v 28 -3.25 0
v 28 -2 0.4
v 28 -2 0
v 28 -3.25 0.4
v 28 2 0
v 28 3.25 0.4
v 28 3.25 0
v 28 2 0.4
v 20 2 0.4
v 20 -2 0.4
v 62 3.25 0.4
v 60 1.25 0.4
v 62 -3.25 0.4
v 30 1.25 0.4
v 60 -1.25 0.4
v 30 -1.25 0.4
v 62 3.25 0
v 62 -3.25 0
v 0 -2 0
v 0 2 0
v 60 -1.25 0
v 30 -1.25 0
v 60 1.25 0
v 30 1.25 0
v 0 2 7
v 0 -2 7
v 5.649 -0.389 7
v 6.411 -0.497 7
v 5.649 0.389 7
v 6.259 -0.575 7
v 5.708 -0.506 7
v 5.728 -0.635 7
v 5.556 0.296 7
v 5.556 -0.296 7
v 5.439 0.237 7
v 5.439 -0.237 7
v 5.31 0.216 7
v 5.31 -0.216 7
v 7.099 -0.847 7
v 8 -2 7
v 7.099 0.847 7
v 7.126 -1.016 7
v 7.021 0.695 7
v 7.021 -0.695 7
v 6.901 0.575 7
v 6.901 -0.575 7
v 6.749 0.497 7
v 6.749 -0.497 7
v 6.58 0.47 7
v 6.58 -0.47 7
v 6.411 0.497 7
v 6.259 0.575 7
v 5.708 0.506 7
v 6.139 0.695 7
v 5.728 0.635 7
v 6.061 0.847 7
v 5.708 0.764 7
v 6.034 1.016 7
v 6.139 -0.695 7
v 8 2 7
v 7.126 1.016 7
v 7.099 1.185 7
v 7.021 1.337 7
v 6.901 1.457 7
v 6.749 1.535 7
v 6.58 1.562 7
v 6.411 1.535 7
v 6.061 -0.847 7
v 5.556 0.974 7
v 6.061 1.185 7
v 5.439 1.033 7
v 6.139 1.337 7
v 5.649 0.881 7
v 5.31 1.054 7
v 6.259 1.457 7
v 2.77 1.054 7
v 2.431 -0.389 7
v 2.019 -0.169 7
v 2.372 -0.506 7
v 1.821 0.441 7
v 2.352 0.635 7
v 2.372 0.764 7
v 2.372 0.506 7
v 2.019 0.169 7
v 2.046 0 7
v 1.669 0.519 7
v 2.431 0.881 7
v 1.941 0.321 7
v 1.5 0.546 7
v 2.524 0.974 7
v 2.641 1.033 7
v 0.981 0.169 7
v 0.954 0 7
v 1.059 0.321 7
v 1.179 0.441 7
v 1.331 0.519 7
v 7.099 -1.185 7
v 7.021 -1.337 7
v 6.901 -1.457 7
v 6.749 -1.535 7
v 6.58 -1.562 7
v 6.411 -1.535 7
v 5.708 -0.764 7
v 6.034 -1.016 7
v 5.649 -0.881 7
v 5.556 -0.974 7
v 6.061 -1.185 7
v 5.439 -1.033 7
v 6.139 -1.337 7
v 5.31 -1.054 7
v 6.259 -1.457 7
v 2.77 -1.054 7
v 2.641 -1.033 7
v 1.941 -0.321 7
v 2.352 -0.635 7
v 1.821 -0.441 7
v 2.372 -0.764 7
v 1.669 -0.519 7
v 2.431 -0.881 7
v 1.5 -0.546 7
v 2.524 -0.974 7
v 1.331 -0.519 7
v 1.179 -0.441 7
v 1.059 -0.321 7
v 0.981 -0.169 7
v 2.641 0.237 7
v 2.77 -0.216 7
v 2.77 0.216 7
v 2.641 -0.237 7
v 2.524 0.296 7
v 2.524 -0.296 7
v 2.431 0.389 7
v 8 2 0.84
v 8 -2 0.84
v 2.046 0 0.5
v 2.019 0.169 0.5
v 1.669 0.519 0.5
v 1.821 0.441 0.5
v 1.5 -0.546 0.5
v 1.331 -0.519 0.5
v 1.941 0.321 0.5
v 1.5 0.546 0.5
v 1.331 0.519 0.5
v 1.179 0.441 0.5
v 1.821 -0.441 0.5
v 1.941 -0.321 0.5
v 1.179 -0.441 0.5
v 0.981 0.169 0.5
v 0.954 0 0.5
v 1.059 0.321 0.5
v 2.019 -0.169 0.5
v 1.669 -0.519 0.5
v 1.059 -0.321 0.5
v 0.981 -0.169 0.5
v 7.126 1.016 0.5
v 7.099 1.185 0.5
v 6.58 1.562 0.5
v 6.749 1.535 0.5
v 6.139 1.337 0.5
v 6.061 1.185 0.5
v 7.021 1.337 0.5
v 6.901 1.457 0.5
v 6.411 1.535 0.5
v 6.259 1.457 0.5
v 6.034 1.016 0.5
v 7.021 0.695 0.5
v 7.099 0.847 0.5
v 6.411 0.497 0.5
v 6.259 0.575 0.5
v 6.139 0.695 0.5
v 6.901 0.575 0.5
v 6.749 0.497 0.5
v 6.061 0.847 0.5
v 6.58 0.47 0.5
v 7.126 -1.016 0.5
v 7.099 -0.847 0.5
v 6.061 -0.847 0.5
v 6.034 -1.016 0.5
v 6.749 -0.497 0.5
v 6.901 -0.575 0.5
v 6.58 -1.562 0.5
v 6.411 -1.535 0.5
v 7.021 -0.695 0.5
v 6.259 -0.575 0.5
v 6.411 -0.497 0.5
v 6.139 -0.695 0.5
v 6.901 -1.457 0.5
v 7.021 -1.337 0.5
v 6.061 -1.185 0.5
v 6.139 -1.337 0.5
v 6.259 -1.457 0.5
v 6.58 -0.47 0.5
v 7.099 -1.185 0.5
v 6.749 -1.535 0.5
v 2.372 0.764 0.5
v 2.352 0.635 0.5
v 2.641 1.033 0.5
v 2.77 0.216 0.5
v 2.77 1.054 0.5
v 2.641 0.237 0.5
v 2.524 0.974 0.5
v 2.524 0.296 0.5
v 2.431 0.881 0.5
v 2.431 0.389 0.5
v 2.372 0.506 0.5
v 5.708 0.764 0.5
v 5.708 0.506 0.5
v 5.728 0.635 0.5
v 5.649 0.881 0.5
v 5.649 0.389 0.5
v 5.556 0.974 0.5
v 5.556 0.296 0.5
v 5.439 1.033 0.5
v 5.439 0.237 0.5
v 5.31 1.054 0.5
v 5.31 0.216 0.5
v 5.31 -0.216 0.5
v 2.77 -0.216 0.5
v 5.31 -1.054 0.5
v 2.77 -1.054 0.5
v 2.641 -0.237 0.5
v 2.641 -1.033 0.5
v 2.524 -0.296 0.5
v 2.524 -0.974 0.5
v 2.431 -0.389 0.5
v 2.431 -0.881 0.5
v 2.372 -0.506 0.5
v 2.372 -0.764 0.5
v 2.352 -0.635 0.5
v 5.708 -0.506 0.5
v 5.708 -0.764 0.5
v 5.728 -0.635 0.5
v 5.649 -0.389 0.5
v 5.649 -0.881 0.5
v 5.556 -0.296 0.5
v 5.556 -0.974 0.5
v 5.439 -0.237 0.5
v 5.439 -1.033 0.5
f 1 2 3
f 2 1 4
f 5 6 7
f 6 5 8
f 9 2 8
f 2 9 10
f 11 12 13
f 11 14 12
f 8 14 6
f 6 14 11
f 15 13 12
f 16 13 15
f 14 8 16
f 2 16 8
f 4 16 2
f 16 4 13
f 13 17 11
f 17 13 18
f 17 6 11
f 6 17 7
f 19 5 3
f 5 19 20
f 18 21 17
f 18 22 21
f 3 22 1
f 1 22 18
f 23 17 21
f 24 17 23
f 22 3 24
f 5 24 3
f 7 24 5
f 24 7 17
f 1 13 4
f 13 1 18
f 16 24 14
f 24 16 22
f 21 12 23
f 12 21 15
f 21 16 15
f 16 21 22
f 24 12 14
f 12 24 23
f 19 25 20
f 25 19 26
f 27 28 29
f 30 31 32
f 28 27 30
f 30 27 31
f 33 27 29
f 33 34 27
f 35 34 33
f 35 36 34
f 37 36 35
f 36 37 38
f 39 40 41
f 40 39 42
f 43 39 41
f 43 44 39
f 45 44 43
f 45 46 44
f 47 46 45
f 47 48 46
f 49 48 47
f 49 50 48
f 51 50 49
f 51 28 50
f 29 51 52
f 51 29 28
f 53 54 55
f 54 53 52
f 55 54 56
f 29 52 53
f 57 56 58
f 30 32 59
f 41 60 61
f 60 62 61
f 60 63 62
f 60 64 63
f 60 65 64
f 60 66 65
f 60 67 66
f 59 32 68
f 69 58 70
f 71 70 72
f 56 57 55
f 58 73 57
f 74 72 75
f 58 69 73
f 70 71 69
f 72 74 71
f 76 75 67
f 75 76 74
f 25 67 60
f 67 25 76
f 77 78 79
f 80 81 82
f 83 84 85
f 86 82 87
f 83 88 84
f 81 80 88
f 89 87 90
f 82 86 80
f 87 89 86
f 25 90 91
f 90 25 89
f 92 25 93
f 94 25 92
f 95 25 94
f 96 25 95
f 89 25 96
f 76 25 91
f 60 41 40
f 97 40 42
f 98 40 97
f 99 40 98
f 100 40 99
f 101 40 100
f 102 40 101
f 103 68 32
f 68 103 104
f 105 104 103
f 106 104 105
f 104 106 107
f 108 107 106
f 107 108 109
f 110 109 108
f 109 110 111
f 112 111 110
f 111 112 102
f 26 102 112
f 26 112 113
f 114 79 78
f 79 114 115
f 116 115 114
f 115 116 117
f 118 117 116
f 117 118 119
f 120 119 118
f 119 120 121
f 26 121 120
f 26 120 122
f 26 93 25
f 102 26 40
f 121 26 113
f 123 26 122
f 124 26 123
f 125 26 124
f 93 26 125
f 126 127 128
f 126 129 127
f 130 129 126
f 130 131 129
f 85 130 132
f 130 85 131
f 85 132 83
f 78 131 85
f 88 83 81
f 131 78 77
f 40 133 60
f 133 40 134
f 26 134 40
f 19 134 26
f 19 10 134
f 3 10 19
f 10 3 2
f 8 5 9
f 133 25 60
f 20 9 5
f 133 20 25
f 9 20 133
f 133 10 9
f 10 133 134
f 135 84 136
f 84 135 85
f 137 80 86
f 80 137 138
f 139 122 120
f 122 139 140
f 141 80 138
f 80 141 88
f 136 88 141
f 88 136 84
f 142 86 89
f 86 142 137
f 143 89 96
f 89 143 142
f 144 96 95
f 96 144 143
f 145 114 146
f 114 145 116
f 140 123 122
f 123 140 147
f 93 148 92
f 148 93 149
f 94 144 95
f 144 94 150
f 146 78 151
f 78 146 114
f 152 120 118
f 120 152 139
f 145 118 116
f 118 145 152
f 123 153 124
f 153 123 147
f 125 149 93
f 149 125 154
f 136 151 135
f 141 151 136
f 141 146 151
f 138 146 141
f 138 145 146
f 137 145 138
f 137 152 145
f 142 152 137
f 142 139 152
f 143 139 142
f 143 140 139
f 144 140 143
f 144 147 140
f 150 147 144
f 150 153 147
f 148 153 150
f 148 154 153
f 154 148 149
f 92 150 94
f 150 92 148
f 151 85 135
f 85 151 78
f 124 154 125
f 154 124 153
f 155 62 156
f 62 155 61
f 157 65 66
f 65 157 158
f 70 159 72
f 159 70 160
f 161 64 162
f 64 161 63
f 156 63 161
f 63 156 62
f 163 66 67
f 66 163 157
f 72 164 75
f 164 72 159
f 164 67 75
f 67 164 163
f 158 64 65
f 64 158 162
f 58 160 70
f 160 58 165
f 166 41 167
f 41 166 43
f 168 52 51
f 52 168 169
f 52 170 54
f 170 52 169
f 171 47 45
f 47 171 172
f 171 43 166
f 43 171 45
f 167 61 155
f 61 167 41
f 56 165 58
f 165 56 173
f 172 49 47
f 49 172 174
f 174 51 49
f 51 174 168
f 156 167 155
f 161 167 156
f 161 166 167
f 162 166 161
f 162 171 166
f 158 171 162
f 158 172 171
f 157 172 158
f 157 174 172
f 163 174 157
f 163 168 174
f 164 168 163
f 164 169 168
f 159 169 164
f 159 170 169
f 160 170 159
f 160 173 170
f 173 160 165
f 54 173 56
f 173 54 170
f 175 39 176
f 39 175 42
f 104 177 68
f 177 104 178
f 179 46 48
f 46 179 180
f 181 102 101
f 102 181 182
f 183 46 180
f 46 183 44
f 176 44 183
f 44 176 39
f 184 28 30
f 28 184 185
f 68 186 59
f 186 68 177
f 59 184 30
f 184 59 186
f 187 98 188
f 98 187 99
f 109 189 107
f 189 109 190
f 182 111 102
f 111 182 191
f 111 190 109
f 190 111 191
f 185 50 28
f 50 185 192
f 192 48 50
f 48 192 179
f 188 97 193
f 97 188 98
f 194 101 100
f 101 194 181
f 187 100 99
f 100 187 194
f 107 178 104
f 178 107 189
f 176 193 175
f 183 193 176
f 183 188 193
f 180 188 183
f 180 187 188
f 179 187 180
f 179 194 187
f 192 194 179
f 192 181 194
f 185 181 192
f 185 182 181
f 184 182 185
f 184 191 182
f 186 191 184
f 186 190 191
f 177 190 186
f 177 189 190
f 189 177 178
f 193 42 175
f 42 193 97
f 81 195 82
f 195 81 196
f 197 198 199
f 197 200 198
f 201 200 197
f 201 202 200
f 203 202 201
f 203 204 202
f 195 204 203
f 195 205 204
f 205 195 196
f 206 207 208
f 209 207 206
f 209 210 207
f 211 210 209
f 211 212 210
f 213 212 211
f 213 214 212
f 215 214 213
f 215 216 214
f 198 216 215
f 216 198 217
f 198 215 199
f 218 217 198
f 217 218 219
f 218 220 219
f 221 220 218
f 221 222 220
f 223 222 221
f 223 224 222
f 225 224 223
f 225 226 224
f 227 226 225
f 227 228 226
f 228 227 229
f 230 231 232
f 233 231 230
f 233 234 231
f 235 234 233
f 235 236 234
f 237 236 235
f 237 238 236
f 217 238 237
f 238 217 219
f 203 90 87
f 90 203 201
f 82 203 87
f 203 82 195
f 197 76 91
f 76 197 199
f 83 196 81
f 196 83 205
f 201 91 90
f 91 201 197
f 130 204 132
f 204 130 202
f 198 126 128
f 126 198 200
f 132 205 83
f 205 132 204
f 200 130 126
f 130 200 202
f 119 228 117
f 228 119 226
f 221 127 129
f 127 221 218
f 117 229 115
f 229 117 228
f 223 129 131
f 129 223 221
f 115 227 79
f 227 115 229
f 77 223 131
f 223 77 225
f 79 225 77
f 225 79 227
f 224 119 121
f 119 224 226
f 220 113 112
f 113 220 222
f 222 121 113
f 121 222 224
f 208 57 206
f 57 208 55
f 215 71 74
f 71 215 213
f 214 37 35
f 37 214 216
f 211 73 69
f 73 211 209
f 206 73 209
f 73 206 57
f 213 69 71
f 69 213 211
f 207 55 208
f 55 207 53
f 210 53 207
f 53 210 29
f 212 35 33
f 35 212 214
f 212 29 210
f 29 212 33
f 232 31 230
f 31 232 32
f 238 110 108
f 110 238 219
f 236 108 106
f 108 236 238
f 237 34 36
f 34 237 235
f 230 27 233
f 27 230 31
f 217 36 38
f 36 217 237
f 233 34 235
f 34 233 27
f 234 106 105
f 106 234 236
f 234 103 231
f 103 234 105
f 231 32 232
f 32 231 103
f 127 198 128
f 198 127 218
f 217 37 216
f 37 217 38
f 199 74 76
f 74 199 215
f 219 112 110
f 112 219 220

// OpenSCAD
$fn=20;

isx = 1.5;       // Inital Spacing X

a_dia_tol = 0.1; // Alignment Hole Tolerance
p_dia_tol = 0.05; // Alignment Hole Tolerance

align_pin_dia = 0.991+a_dia_tol; // Alignment Pin Diamenter
probe_pin_dia = 0.787+p_dia_tol; // Probe Pin Diameter

/* Probe Clip Dimention */
boxx = 8;
boxy = 4;
boxh = 7;
his = 0.5; // Alignment/Probe hole offset height spacing

/* Probe Pair Spacing */
pps = 1.270;// mm probe pair spacing
pys = 0.635; // Probe spacing from x axis along y axis

/* Align Hole Calc */
ap1xs   = isx;        // Align pin 1 x spacing
ap2a3xs = ap1xs+5.080; // Align pin 2&3 x spacing
ap2a3ys = 1.016;

/* Probe Shield */
// http://www.tag-connect.com/Materials/TC2030-IDC.pdf
pss = ap1xs + pps - (probe_pin_dia/2);
psx = pps*2 + probe_pin_dia;
psy = 1.016*2;

/* Probe Pair Space Calc */
pp1s = ap1xs + pps*1; // mm spacing 
pp2s = ap1xs + pps*2; // mm spacing 
pp3s = ap1xs + pps*3; // mm spacing 
probe_pit_y = pys*2 + probe_pin_dia; // 

/* loop */
loop_length = 30;
loop_height = 0.4;
loop_width = boxy;
loop_hole_w = 2.5; // hole width
loop_hole_l = 30;
loop_hole_s = 2;

loop_loy = loop_hole_w + 2*loop_hole_s;

/* 3D Model */
difference() {
translate([0  , -boxy/2  , 0])
    union(){
        /* Main Plug */
        cube([boxx,boxy,boxh]);

        /* Loop */
        // Strain Relief
        translate([boxx, (boxy-loop_width)/2  , loop_height])
            polyhedron(
                [
                  [  0,                       0,     0 ],  //0
                  [  (loop_length*2/3)-boxx,  0,     0 ],  //1
                  [  (loop_length*2/3)-boxx,  boxy,  0 ],  //2
                  [  0,                       boxy,  0 ],  //3
                  [  0,                       0,     loop_height*1.1 ],  //4
                  [  (loop_length*2/3)-boxx,  0,     0 ],  //5
                  [  (loop_length*2/3)-boxx,  boxy,  0 ],  //6
                  [  0,                       boxy,  loop_height*1.1 ]   //7
                ]
                ,
                [
                  [0,1,2,3],  // bottom
                  [4,5,1,0],  // front
                  [7,6,5,4],  // top
                  [5,6,2,1],  // right
                  [6,7,3,2],  // back
                  [7,4,0,3] // left
                  ]
                );
        // Lanyard
        translate([0, (boxy-loop_width)/2  , 0])
            cube([loop_length,loop_width,loop_height]); // lanyard
        
        // Loop
        translate([loop_length-loop_hole_s, (boxy-loop_loy)/2  , 0])
        difference() {
            cube([loop_hole_l+loop_hole_s*2,loop_loy,loop_height]); // lanyard
            #translate([loop_hole_s, ((loop_loy-loop_hole_w)/2)  , -loop_height/2])
                cube([loop_hole_l,loop_hole_w,loop_height*2]); // hole
        }
    }

/* Align Hole */
#translate([ap1xs   , 0         , his])
    cylinder(r=align_pin_dia/2, h=boxh);
#translate([ap2a3xs , +ap2a3ys  , his])
    cylinder(r=align_pin_dia/2, h=boxh);
#translate([ap2a3xs , -ap2a3ys  , his])
    cylinder(r=align_pin_dia/2, h=boxh);

/* Probe Pair 1 */
#translate([pp1s, +pys  , his])
    cylinder(r=probe_pin_dia/2, h=boxh);
#translate([pp1s, -pys  , his])
    cylinder(r=probe_pin_dia/2, h=boxh);
/* Probe Pair 2 */
#translate([pp2s, +pys  , his])
    cylinder(r=probe_pin_dia/2, h=boxh);
#translate([pp2s, -pys  , his])
    cylinder(r=probe_pin_dia/2, h=boxh);
/* Probe Pair 3 */
#translate([pp3s, +pys  , his])
    cylinder(r=probe_pin_dia/2, h=boxh);
#translate([pp3s, -pys  , his])
    cylinder(r=probe_pin_dia/2, h=boxh);
/* Probe Pit */
#translate([pp1s  , -probe_pit_y/2  , his])
    cube([pps*2,probe_pit_y,boxh]);
}
